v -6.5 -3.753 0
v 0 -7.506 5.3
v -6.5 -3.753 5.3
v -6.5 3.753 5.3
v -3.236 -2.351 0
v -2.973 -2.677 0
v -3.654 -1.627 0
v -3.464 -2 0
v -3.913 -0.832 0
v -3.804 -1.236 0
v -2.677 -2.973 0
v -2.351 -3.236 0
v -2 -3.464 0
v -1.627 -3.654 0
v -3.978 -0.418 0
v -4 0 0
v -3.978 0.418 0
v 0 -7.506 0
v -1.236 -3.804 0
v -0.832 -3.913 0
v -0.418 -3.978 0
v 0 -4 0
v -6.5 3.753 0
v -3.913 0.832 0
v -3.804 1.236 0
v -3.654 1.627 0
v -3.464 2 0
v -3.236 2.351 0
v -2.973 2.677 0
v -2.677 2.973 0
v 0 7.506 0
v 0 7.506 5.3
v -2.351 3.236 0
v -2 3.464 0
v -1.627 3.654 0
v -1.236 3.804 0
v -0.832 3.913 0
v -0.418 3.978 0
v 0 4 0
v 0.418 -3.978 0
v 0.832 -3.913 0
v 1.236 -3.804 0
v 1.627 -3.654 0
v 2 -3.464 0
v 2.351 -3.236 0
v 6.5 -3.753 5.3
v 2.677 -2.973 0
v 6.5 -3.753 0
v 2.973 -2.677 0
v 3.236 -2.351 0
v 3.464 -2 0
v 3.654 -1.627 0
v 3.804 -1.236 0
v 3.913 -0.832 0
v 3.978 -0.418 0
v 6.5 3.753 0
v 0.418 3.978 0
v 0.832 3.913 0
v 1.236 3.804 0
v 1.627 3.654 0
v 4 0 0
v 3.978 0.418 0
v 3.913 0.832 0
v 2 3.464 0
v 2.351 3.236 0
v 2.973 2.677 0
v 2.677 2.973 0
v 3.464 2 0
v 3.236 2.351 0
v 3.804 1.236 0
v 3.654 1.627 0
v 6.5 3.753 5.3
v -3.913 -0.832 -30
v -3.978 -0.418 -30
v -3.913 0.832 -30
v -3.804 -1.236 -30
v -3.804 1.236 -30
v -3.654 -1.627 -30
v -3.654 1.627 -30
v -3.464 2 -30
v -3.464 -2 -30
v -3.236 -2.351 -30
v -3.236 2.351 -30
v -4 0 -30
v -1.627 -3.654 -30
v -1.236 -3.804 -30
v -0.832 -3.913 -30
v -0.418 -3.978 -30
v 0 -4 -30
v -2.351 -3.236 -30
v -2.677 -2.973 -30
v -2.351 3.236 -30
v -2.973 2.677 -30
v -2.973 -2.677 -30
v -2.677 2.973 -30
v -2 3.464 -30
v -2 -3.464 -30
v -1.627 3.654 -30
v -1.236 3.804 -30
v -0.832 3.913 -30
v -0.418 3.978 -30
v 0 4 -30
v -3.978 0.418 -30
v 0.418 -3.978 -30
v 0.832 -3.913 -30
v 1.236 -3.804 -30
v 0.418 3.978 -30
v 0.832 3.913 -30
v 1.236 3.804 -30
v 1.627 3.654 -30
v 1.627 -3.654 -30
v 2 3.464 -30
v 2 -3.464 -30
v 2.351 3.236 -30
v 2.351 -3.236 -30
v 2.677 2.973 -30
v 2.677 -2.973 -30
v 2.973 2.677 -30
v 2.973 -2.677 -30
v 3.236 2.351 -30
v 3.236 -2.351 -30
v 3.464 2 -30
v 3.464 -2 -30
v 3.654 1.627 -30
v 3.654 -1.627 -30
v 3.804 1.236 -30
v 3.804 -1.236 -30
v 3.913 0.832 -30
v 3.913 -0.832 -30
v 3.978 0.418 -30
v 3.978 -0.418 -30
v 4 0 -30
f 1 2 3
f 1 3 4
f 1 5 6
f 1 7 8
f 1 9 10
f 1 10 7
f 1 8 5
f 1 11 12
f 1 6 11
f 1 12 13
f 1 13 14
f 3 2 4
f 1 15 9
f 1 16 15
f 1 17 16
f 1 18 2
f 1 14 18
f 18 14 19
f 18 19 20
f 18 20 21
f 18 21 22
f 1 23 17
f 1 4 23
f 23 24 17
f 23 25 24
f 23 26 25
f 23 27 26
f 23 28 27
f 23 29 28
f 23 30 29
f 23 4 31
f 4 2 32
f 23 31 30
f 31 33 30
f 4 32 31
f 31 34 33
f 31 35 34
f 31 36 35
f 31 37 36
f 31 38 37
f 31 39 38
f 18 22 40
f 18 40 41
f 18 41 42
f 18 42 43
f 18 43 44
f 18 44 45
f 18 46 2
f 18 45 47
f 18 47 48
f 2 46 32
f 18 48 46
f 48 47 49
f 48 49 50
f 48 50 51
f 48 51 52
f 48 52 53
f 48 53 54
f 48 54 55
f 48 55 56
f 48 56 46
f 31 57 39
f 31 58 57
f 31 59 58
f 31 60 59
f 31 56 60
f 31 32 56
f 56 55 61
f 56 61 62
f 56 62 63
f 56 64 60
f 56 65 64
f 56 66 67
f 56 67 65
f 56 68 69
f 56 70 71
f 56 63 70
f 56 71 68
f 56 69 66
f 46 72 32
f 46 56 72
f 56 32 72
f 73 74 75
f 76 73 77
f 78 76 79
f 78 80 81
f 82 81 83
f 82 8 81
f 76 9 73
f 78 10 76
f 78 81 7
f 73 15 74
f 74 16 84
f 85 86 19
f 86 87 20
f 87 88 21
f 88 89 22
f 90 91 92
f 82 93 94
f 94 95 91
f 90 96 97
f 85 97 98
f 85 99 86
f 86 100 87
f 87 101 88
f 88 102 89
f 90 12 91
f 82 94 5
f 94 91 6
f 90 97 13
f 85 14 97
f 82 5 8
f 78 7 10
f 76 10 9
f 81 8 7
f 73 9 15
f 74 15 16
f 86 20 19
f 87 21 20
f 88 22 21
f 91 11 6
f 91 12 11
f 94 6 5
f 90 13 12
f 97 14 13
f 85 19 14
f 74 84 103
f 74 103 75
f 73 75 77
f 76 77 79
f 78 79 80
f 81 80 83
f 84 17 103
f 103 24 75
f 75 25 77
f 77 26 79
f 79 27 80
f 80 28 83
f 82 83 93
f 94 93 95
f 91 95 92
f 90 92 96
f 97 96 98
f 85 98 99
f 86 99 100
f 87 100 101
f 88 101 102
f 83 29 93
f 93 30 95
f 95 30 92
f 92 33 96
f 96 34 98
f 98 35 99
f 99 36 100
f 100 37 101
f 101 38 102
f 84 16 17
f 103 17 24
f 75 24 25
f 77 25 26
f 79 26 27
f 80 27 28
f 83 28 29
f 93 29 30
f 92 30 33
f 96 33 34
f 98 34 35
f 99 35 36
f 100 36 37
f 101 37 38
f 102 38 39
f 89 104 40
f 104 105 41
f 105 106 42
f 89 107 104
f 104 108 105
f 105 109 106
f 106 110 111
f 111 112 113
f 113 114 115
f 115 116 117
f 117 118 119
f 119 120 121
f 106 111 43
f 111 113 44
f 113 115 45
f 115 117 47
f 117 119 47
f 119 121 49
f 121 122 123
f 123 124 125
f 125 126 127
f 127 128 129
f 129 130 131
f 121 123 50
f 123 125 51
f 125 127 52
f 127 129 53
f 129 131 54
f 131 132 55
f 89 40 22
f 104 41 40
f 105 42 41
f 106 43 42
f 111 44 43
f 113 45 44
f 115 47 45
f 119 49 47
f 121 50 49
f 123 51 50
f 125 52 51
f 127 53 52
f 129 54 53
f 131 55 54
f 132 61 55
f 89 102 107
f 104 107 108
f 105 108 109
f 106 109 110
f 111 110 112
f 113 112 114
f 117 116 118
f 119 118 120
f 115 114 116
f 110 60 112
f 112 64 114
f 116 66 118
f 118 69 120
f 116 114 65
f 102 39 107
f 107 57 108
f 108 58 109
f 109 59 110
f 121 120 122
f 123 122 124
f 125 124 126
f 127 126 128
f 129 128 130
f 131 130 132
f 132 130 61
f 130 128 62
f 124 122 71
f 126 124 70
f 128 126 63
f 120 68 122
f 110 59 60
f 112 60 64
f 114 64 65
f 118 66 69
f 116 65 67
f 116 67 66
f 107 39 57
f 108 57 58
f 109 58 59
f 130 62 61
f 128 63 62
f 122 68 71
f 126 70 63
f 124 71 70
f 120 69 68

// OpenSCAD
// M8 Hex Bolt
// 寸法：二面幅13mm、頭部高さ5.3mm、シャンク径8mm、長さ30mm
// 配置：頭部底面が z=0、シャンクが z<0 方向

head_af = 13;
head_height = 5.3;
shank_dia = 8;
shank_len = 30;

// cylinder(..., $fn=6) を使用する場合の半径 r = (二面幅 / 2) / cos(180/6)
// つまり r = (head_af / 2) / (sqrt(3)/2) = head_af / sqrt(3)
hex_radius = head_af / sqrt(3);

union() {
    // 頭部: z=0 から z=5.3 まで
    // hex_radius の面が正しく向き合うよう、必要に応じて rotate を加える
    rotate([0, 0, 30])
    cylinder(r = hex_radius, h = head_height, $fn = 6);
    
    // シャンク: z=0 から z=-30 まで
    translate([0, 0, -shank_len])
        cylinder(d = shank_dia, h = shank_len, $fn = 60);
}
